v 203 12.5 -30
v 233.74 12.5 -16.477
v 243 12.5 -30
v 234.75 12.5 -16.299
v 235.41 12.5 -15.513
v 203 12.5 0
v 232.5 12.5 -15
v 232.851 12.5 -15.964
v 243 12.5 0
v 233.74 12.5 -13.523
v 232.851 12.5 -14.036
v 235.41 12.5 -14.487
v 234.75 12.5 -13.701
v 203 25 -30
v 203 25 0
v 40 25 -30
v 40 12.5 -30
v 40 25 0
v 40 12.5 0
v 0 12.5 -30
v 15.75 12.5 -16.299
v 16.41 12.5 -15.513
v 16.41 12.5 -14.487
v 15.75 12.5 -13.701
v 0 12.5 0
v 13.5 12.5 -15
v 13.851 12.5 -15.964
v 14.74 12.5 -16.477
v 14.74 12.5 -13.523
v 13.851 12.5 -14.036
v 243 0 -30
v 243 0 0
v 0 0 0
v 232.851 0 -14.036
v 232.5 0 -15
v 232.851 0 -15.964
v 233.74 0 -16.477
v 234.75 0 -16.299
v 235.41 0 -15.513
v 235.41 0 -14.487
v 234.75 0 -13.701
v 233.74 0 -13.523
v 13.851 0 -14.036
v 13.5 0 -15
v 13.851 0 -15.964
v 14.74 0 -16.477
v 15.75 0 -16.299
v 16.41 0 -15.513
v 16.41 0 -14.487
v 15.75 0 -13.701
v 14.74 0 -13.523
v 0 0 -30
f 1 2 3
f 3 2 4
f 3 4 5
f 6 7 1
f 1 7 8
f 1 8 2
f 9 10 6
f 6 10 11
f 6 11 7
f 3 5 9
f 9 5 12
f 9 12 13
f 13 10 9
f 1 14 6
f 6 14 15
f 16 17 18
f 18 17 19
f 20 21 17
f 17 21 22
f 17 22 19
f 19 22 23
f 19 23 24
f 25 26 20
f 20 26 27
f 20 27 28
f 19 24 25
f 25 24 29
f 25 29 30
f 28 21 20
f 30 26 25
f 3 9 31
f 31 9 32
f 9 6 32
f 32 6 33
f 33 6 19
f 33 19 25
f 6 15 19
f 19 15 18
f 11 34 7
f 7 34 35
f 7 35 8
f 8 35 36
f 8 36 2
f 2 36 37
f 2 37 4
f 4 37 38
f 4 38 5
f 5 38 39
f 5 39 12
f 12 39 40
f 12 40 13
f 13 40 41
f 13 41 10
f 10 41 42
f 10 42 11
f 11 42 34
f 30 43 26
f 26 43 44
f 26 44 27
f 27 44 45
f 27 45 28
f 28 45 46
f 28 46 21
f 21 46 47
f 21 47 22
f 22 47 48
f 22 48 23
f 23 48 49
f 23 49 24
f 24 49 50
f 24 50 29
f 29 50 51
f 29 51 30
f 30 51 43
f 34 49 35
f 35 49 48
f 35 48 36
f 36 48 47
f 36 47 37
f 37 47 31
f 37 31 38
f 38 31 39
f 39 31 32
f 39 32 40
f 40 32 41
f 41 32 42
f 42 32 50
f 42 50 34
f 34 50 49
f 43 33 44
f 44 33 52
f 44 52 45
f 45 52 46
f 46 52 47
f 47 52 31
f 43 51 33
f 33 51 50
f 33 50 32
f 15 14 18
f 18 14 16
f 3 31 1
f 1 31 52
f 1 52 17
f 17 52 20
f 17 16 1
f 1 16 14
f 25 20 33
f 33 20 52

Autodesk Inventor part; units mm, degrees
ref_plane "YZ Plane" through (0, 0, 0) normal (1, 0, 0) x (0, 1, 0)
ref_plane "XZ Plane" through (0, 0, 0) normal (0, 1, 0) x (-1, 0, 0)
ref_plane "XY Plane" through (0, 0, 0) normal (0, 0, 1) x (1, 0, 0)
sketch "Esquisse1" plane through (0, 0, 0) normal (1, 0, 0) x (0, 1, 0)
  line L0 (0, 0) -> (25, 0)
  line L1 (25, 0) -> (25, -30)
  line L2 (25, -30) -> (0, -30)
  line L3 (0, -30) -> (0, 0)
  dimension "d0" = 25
  dimension "d1" = 30
extrude "Extrusion1" add sketch "Esquisse1" along normal blind 243
sketch "Esquisse2" plane through (0, 25, 0) normal (0, 1, 0) x (1, 0, 0)
  circle A0 centre (15, 15) radius 1.5
  line L0 (0, 30) -> (0, 0) projected
  circle A1 centre (234, 15) radius 1.5
  dimension "d4" = 3
  dimension "d5" = 15
  dimension "d6" = 3
  dimension "d7" = 219
extrude "Extrusion2" cut sketch "Esquisse2" against normal blind 25 from surface at 0
sketch "Esquisse3" plane through (0, 0, 0) normal (0, 0, 1) x (1, 0, 0)
  line L0 (0, 25) -> (243, 25) projected
  line L1 (0, 25) -> (40, 25)
  line L2 (40, 25) -> (40, 12.5)
  line L3 (40, 12.5) -> (0, 12.5)
  line L4 (0, 12.5) -> (0, 25)
  line L5 (243, 25) -> (203, 25)
  line L6 (203, 25) -> (203, 12.5)
  line L7 (203, 12.5) -> (243, 12.5)
  line L8 (243, 12.5) -> (243, 25)
  point P0 (0, 0)
  dimension "d10" = 12.5
  dimension "d11" = 40
  dimension "d12" = 40
extrude "Extrusion3" cut sketch "Esquisse3" against normal through all
properties part number "Bras_avant"
